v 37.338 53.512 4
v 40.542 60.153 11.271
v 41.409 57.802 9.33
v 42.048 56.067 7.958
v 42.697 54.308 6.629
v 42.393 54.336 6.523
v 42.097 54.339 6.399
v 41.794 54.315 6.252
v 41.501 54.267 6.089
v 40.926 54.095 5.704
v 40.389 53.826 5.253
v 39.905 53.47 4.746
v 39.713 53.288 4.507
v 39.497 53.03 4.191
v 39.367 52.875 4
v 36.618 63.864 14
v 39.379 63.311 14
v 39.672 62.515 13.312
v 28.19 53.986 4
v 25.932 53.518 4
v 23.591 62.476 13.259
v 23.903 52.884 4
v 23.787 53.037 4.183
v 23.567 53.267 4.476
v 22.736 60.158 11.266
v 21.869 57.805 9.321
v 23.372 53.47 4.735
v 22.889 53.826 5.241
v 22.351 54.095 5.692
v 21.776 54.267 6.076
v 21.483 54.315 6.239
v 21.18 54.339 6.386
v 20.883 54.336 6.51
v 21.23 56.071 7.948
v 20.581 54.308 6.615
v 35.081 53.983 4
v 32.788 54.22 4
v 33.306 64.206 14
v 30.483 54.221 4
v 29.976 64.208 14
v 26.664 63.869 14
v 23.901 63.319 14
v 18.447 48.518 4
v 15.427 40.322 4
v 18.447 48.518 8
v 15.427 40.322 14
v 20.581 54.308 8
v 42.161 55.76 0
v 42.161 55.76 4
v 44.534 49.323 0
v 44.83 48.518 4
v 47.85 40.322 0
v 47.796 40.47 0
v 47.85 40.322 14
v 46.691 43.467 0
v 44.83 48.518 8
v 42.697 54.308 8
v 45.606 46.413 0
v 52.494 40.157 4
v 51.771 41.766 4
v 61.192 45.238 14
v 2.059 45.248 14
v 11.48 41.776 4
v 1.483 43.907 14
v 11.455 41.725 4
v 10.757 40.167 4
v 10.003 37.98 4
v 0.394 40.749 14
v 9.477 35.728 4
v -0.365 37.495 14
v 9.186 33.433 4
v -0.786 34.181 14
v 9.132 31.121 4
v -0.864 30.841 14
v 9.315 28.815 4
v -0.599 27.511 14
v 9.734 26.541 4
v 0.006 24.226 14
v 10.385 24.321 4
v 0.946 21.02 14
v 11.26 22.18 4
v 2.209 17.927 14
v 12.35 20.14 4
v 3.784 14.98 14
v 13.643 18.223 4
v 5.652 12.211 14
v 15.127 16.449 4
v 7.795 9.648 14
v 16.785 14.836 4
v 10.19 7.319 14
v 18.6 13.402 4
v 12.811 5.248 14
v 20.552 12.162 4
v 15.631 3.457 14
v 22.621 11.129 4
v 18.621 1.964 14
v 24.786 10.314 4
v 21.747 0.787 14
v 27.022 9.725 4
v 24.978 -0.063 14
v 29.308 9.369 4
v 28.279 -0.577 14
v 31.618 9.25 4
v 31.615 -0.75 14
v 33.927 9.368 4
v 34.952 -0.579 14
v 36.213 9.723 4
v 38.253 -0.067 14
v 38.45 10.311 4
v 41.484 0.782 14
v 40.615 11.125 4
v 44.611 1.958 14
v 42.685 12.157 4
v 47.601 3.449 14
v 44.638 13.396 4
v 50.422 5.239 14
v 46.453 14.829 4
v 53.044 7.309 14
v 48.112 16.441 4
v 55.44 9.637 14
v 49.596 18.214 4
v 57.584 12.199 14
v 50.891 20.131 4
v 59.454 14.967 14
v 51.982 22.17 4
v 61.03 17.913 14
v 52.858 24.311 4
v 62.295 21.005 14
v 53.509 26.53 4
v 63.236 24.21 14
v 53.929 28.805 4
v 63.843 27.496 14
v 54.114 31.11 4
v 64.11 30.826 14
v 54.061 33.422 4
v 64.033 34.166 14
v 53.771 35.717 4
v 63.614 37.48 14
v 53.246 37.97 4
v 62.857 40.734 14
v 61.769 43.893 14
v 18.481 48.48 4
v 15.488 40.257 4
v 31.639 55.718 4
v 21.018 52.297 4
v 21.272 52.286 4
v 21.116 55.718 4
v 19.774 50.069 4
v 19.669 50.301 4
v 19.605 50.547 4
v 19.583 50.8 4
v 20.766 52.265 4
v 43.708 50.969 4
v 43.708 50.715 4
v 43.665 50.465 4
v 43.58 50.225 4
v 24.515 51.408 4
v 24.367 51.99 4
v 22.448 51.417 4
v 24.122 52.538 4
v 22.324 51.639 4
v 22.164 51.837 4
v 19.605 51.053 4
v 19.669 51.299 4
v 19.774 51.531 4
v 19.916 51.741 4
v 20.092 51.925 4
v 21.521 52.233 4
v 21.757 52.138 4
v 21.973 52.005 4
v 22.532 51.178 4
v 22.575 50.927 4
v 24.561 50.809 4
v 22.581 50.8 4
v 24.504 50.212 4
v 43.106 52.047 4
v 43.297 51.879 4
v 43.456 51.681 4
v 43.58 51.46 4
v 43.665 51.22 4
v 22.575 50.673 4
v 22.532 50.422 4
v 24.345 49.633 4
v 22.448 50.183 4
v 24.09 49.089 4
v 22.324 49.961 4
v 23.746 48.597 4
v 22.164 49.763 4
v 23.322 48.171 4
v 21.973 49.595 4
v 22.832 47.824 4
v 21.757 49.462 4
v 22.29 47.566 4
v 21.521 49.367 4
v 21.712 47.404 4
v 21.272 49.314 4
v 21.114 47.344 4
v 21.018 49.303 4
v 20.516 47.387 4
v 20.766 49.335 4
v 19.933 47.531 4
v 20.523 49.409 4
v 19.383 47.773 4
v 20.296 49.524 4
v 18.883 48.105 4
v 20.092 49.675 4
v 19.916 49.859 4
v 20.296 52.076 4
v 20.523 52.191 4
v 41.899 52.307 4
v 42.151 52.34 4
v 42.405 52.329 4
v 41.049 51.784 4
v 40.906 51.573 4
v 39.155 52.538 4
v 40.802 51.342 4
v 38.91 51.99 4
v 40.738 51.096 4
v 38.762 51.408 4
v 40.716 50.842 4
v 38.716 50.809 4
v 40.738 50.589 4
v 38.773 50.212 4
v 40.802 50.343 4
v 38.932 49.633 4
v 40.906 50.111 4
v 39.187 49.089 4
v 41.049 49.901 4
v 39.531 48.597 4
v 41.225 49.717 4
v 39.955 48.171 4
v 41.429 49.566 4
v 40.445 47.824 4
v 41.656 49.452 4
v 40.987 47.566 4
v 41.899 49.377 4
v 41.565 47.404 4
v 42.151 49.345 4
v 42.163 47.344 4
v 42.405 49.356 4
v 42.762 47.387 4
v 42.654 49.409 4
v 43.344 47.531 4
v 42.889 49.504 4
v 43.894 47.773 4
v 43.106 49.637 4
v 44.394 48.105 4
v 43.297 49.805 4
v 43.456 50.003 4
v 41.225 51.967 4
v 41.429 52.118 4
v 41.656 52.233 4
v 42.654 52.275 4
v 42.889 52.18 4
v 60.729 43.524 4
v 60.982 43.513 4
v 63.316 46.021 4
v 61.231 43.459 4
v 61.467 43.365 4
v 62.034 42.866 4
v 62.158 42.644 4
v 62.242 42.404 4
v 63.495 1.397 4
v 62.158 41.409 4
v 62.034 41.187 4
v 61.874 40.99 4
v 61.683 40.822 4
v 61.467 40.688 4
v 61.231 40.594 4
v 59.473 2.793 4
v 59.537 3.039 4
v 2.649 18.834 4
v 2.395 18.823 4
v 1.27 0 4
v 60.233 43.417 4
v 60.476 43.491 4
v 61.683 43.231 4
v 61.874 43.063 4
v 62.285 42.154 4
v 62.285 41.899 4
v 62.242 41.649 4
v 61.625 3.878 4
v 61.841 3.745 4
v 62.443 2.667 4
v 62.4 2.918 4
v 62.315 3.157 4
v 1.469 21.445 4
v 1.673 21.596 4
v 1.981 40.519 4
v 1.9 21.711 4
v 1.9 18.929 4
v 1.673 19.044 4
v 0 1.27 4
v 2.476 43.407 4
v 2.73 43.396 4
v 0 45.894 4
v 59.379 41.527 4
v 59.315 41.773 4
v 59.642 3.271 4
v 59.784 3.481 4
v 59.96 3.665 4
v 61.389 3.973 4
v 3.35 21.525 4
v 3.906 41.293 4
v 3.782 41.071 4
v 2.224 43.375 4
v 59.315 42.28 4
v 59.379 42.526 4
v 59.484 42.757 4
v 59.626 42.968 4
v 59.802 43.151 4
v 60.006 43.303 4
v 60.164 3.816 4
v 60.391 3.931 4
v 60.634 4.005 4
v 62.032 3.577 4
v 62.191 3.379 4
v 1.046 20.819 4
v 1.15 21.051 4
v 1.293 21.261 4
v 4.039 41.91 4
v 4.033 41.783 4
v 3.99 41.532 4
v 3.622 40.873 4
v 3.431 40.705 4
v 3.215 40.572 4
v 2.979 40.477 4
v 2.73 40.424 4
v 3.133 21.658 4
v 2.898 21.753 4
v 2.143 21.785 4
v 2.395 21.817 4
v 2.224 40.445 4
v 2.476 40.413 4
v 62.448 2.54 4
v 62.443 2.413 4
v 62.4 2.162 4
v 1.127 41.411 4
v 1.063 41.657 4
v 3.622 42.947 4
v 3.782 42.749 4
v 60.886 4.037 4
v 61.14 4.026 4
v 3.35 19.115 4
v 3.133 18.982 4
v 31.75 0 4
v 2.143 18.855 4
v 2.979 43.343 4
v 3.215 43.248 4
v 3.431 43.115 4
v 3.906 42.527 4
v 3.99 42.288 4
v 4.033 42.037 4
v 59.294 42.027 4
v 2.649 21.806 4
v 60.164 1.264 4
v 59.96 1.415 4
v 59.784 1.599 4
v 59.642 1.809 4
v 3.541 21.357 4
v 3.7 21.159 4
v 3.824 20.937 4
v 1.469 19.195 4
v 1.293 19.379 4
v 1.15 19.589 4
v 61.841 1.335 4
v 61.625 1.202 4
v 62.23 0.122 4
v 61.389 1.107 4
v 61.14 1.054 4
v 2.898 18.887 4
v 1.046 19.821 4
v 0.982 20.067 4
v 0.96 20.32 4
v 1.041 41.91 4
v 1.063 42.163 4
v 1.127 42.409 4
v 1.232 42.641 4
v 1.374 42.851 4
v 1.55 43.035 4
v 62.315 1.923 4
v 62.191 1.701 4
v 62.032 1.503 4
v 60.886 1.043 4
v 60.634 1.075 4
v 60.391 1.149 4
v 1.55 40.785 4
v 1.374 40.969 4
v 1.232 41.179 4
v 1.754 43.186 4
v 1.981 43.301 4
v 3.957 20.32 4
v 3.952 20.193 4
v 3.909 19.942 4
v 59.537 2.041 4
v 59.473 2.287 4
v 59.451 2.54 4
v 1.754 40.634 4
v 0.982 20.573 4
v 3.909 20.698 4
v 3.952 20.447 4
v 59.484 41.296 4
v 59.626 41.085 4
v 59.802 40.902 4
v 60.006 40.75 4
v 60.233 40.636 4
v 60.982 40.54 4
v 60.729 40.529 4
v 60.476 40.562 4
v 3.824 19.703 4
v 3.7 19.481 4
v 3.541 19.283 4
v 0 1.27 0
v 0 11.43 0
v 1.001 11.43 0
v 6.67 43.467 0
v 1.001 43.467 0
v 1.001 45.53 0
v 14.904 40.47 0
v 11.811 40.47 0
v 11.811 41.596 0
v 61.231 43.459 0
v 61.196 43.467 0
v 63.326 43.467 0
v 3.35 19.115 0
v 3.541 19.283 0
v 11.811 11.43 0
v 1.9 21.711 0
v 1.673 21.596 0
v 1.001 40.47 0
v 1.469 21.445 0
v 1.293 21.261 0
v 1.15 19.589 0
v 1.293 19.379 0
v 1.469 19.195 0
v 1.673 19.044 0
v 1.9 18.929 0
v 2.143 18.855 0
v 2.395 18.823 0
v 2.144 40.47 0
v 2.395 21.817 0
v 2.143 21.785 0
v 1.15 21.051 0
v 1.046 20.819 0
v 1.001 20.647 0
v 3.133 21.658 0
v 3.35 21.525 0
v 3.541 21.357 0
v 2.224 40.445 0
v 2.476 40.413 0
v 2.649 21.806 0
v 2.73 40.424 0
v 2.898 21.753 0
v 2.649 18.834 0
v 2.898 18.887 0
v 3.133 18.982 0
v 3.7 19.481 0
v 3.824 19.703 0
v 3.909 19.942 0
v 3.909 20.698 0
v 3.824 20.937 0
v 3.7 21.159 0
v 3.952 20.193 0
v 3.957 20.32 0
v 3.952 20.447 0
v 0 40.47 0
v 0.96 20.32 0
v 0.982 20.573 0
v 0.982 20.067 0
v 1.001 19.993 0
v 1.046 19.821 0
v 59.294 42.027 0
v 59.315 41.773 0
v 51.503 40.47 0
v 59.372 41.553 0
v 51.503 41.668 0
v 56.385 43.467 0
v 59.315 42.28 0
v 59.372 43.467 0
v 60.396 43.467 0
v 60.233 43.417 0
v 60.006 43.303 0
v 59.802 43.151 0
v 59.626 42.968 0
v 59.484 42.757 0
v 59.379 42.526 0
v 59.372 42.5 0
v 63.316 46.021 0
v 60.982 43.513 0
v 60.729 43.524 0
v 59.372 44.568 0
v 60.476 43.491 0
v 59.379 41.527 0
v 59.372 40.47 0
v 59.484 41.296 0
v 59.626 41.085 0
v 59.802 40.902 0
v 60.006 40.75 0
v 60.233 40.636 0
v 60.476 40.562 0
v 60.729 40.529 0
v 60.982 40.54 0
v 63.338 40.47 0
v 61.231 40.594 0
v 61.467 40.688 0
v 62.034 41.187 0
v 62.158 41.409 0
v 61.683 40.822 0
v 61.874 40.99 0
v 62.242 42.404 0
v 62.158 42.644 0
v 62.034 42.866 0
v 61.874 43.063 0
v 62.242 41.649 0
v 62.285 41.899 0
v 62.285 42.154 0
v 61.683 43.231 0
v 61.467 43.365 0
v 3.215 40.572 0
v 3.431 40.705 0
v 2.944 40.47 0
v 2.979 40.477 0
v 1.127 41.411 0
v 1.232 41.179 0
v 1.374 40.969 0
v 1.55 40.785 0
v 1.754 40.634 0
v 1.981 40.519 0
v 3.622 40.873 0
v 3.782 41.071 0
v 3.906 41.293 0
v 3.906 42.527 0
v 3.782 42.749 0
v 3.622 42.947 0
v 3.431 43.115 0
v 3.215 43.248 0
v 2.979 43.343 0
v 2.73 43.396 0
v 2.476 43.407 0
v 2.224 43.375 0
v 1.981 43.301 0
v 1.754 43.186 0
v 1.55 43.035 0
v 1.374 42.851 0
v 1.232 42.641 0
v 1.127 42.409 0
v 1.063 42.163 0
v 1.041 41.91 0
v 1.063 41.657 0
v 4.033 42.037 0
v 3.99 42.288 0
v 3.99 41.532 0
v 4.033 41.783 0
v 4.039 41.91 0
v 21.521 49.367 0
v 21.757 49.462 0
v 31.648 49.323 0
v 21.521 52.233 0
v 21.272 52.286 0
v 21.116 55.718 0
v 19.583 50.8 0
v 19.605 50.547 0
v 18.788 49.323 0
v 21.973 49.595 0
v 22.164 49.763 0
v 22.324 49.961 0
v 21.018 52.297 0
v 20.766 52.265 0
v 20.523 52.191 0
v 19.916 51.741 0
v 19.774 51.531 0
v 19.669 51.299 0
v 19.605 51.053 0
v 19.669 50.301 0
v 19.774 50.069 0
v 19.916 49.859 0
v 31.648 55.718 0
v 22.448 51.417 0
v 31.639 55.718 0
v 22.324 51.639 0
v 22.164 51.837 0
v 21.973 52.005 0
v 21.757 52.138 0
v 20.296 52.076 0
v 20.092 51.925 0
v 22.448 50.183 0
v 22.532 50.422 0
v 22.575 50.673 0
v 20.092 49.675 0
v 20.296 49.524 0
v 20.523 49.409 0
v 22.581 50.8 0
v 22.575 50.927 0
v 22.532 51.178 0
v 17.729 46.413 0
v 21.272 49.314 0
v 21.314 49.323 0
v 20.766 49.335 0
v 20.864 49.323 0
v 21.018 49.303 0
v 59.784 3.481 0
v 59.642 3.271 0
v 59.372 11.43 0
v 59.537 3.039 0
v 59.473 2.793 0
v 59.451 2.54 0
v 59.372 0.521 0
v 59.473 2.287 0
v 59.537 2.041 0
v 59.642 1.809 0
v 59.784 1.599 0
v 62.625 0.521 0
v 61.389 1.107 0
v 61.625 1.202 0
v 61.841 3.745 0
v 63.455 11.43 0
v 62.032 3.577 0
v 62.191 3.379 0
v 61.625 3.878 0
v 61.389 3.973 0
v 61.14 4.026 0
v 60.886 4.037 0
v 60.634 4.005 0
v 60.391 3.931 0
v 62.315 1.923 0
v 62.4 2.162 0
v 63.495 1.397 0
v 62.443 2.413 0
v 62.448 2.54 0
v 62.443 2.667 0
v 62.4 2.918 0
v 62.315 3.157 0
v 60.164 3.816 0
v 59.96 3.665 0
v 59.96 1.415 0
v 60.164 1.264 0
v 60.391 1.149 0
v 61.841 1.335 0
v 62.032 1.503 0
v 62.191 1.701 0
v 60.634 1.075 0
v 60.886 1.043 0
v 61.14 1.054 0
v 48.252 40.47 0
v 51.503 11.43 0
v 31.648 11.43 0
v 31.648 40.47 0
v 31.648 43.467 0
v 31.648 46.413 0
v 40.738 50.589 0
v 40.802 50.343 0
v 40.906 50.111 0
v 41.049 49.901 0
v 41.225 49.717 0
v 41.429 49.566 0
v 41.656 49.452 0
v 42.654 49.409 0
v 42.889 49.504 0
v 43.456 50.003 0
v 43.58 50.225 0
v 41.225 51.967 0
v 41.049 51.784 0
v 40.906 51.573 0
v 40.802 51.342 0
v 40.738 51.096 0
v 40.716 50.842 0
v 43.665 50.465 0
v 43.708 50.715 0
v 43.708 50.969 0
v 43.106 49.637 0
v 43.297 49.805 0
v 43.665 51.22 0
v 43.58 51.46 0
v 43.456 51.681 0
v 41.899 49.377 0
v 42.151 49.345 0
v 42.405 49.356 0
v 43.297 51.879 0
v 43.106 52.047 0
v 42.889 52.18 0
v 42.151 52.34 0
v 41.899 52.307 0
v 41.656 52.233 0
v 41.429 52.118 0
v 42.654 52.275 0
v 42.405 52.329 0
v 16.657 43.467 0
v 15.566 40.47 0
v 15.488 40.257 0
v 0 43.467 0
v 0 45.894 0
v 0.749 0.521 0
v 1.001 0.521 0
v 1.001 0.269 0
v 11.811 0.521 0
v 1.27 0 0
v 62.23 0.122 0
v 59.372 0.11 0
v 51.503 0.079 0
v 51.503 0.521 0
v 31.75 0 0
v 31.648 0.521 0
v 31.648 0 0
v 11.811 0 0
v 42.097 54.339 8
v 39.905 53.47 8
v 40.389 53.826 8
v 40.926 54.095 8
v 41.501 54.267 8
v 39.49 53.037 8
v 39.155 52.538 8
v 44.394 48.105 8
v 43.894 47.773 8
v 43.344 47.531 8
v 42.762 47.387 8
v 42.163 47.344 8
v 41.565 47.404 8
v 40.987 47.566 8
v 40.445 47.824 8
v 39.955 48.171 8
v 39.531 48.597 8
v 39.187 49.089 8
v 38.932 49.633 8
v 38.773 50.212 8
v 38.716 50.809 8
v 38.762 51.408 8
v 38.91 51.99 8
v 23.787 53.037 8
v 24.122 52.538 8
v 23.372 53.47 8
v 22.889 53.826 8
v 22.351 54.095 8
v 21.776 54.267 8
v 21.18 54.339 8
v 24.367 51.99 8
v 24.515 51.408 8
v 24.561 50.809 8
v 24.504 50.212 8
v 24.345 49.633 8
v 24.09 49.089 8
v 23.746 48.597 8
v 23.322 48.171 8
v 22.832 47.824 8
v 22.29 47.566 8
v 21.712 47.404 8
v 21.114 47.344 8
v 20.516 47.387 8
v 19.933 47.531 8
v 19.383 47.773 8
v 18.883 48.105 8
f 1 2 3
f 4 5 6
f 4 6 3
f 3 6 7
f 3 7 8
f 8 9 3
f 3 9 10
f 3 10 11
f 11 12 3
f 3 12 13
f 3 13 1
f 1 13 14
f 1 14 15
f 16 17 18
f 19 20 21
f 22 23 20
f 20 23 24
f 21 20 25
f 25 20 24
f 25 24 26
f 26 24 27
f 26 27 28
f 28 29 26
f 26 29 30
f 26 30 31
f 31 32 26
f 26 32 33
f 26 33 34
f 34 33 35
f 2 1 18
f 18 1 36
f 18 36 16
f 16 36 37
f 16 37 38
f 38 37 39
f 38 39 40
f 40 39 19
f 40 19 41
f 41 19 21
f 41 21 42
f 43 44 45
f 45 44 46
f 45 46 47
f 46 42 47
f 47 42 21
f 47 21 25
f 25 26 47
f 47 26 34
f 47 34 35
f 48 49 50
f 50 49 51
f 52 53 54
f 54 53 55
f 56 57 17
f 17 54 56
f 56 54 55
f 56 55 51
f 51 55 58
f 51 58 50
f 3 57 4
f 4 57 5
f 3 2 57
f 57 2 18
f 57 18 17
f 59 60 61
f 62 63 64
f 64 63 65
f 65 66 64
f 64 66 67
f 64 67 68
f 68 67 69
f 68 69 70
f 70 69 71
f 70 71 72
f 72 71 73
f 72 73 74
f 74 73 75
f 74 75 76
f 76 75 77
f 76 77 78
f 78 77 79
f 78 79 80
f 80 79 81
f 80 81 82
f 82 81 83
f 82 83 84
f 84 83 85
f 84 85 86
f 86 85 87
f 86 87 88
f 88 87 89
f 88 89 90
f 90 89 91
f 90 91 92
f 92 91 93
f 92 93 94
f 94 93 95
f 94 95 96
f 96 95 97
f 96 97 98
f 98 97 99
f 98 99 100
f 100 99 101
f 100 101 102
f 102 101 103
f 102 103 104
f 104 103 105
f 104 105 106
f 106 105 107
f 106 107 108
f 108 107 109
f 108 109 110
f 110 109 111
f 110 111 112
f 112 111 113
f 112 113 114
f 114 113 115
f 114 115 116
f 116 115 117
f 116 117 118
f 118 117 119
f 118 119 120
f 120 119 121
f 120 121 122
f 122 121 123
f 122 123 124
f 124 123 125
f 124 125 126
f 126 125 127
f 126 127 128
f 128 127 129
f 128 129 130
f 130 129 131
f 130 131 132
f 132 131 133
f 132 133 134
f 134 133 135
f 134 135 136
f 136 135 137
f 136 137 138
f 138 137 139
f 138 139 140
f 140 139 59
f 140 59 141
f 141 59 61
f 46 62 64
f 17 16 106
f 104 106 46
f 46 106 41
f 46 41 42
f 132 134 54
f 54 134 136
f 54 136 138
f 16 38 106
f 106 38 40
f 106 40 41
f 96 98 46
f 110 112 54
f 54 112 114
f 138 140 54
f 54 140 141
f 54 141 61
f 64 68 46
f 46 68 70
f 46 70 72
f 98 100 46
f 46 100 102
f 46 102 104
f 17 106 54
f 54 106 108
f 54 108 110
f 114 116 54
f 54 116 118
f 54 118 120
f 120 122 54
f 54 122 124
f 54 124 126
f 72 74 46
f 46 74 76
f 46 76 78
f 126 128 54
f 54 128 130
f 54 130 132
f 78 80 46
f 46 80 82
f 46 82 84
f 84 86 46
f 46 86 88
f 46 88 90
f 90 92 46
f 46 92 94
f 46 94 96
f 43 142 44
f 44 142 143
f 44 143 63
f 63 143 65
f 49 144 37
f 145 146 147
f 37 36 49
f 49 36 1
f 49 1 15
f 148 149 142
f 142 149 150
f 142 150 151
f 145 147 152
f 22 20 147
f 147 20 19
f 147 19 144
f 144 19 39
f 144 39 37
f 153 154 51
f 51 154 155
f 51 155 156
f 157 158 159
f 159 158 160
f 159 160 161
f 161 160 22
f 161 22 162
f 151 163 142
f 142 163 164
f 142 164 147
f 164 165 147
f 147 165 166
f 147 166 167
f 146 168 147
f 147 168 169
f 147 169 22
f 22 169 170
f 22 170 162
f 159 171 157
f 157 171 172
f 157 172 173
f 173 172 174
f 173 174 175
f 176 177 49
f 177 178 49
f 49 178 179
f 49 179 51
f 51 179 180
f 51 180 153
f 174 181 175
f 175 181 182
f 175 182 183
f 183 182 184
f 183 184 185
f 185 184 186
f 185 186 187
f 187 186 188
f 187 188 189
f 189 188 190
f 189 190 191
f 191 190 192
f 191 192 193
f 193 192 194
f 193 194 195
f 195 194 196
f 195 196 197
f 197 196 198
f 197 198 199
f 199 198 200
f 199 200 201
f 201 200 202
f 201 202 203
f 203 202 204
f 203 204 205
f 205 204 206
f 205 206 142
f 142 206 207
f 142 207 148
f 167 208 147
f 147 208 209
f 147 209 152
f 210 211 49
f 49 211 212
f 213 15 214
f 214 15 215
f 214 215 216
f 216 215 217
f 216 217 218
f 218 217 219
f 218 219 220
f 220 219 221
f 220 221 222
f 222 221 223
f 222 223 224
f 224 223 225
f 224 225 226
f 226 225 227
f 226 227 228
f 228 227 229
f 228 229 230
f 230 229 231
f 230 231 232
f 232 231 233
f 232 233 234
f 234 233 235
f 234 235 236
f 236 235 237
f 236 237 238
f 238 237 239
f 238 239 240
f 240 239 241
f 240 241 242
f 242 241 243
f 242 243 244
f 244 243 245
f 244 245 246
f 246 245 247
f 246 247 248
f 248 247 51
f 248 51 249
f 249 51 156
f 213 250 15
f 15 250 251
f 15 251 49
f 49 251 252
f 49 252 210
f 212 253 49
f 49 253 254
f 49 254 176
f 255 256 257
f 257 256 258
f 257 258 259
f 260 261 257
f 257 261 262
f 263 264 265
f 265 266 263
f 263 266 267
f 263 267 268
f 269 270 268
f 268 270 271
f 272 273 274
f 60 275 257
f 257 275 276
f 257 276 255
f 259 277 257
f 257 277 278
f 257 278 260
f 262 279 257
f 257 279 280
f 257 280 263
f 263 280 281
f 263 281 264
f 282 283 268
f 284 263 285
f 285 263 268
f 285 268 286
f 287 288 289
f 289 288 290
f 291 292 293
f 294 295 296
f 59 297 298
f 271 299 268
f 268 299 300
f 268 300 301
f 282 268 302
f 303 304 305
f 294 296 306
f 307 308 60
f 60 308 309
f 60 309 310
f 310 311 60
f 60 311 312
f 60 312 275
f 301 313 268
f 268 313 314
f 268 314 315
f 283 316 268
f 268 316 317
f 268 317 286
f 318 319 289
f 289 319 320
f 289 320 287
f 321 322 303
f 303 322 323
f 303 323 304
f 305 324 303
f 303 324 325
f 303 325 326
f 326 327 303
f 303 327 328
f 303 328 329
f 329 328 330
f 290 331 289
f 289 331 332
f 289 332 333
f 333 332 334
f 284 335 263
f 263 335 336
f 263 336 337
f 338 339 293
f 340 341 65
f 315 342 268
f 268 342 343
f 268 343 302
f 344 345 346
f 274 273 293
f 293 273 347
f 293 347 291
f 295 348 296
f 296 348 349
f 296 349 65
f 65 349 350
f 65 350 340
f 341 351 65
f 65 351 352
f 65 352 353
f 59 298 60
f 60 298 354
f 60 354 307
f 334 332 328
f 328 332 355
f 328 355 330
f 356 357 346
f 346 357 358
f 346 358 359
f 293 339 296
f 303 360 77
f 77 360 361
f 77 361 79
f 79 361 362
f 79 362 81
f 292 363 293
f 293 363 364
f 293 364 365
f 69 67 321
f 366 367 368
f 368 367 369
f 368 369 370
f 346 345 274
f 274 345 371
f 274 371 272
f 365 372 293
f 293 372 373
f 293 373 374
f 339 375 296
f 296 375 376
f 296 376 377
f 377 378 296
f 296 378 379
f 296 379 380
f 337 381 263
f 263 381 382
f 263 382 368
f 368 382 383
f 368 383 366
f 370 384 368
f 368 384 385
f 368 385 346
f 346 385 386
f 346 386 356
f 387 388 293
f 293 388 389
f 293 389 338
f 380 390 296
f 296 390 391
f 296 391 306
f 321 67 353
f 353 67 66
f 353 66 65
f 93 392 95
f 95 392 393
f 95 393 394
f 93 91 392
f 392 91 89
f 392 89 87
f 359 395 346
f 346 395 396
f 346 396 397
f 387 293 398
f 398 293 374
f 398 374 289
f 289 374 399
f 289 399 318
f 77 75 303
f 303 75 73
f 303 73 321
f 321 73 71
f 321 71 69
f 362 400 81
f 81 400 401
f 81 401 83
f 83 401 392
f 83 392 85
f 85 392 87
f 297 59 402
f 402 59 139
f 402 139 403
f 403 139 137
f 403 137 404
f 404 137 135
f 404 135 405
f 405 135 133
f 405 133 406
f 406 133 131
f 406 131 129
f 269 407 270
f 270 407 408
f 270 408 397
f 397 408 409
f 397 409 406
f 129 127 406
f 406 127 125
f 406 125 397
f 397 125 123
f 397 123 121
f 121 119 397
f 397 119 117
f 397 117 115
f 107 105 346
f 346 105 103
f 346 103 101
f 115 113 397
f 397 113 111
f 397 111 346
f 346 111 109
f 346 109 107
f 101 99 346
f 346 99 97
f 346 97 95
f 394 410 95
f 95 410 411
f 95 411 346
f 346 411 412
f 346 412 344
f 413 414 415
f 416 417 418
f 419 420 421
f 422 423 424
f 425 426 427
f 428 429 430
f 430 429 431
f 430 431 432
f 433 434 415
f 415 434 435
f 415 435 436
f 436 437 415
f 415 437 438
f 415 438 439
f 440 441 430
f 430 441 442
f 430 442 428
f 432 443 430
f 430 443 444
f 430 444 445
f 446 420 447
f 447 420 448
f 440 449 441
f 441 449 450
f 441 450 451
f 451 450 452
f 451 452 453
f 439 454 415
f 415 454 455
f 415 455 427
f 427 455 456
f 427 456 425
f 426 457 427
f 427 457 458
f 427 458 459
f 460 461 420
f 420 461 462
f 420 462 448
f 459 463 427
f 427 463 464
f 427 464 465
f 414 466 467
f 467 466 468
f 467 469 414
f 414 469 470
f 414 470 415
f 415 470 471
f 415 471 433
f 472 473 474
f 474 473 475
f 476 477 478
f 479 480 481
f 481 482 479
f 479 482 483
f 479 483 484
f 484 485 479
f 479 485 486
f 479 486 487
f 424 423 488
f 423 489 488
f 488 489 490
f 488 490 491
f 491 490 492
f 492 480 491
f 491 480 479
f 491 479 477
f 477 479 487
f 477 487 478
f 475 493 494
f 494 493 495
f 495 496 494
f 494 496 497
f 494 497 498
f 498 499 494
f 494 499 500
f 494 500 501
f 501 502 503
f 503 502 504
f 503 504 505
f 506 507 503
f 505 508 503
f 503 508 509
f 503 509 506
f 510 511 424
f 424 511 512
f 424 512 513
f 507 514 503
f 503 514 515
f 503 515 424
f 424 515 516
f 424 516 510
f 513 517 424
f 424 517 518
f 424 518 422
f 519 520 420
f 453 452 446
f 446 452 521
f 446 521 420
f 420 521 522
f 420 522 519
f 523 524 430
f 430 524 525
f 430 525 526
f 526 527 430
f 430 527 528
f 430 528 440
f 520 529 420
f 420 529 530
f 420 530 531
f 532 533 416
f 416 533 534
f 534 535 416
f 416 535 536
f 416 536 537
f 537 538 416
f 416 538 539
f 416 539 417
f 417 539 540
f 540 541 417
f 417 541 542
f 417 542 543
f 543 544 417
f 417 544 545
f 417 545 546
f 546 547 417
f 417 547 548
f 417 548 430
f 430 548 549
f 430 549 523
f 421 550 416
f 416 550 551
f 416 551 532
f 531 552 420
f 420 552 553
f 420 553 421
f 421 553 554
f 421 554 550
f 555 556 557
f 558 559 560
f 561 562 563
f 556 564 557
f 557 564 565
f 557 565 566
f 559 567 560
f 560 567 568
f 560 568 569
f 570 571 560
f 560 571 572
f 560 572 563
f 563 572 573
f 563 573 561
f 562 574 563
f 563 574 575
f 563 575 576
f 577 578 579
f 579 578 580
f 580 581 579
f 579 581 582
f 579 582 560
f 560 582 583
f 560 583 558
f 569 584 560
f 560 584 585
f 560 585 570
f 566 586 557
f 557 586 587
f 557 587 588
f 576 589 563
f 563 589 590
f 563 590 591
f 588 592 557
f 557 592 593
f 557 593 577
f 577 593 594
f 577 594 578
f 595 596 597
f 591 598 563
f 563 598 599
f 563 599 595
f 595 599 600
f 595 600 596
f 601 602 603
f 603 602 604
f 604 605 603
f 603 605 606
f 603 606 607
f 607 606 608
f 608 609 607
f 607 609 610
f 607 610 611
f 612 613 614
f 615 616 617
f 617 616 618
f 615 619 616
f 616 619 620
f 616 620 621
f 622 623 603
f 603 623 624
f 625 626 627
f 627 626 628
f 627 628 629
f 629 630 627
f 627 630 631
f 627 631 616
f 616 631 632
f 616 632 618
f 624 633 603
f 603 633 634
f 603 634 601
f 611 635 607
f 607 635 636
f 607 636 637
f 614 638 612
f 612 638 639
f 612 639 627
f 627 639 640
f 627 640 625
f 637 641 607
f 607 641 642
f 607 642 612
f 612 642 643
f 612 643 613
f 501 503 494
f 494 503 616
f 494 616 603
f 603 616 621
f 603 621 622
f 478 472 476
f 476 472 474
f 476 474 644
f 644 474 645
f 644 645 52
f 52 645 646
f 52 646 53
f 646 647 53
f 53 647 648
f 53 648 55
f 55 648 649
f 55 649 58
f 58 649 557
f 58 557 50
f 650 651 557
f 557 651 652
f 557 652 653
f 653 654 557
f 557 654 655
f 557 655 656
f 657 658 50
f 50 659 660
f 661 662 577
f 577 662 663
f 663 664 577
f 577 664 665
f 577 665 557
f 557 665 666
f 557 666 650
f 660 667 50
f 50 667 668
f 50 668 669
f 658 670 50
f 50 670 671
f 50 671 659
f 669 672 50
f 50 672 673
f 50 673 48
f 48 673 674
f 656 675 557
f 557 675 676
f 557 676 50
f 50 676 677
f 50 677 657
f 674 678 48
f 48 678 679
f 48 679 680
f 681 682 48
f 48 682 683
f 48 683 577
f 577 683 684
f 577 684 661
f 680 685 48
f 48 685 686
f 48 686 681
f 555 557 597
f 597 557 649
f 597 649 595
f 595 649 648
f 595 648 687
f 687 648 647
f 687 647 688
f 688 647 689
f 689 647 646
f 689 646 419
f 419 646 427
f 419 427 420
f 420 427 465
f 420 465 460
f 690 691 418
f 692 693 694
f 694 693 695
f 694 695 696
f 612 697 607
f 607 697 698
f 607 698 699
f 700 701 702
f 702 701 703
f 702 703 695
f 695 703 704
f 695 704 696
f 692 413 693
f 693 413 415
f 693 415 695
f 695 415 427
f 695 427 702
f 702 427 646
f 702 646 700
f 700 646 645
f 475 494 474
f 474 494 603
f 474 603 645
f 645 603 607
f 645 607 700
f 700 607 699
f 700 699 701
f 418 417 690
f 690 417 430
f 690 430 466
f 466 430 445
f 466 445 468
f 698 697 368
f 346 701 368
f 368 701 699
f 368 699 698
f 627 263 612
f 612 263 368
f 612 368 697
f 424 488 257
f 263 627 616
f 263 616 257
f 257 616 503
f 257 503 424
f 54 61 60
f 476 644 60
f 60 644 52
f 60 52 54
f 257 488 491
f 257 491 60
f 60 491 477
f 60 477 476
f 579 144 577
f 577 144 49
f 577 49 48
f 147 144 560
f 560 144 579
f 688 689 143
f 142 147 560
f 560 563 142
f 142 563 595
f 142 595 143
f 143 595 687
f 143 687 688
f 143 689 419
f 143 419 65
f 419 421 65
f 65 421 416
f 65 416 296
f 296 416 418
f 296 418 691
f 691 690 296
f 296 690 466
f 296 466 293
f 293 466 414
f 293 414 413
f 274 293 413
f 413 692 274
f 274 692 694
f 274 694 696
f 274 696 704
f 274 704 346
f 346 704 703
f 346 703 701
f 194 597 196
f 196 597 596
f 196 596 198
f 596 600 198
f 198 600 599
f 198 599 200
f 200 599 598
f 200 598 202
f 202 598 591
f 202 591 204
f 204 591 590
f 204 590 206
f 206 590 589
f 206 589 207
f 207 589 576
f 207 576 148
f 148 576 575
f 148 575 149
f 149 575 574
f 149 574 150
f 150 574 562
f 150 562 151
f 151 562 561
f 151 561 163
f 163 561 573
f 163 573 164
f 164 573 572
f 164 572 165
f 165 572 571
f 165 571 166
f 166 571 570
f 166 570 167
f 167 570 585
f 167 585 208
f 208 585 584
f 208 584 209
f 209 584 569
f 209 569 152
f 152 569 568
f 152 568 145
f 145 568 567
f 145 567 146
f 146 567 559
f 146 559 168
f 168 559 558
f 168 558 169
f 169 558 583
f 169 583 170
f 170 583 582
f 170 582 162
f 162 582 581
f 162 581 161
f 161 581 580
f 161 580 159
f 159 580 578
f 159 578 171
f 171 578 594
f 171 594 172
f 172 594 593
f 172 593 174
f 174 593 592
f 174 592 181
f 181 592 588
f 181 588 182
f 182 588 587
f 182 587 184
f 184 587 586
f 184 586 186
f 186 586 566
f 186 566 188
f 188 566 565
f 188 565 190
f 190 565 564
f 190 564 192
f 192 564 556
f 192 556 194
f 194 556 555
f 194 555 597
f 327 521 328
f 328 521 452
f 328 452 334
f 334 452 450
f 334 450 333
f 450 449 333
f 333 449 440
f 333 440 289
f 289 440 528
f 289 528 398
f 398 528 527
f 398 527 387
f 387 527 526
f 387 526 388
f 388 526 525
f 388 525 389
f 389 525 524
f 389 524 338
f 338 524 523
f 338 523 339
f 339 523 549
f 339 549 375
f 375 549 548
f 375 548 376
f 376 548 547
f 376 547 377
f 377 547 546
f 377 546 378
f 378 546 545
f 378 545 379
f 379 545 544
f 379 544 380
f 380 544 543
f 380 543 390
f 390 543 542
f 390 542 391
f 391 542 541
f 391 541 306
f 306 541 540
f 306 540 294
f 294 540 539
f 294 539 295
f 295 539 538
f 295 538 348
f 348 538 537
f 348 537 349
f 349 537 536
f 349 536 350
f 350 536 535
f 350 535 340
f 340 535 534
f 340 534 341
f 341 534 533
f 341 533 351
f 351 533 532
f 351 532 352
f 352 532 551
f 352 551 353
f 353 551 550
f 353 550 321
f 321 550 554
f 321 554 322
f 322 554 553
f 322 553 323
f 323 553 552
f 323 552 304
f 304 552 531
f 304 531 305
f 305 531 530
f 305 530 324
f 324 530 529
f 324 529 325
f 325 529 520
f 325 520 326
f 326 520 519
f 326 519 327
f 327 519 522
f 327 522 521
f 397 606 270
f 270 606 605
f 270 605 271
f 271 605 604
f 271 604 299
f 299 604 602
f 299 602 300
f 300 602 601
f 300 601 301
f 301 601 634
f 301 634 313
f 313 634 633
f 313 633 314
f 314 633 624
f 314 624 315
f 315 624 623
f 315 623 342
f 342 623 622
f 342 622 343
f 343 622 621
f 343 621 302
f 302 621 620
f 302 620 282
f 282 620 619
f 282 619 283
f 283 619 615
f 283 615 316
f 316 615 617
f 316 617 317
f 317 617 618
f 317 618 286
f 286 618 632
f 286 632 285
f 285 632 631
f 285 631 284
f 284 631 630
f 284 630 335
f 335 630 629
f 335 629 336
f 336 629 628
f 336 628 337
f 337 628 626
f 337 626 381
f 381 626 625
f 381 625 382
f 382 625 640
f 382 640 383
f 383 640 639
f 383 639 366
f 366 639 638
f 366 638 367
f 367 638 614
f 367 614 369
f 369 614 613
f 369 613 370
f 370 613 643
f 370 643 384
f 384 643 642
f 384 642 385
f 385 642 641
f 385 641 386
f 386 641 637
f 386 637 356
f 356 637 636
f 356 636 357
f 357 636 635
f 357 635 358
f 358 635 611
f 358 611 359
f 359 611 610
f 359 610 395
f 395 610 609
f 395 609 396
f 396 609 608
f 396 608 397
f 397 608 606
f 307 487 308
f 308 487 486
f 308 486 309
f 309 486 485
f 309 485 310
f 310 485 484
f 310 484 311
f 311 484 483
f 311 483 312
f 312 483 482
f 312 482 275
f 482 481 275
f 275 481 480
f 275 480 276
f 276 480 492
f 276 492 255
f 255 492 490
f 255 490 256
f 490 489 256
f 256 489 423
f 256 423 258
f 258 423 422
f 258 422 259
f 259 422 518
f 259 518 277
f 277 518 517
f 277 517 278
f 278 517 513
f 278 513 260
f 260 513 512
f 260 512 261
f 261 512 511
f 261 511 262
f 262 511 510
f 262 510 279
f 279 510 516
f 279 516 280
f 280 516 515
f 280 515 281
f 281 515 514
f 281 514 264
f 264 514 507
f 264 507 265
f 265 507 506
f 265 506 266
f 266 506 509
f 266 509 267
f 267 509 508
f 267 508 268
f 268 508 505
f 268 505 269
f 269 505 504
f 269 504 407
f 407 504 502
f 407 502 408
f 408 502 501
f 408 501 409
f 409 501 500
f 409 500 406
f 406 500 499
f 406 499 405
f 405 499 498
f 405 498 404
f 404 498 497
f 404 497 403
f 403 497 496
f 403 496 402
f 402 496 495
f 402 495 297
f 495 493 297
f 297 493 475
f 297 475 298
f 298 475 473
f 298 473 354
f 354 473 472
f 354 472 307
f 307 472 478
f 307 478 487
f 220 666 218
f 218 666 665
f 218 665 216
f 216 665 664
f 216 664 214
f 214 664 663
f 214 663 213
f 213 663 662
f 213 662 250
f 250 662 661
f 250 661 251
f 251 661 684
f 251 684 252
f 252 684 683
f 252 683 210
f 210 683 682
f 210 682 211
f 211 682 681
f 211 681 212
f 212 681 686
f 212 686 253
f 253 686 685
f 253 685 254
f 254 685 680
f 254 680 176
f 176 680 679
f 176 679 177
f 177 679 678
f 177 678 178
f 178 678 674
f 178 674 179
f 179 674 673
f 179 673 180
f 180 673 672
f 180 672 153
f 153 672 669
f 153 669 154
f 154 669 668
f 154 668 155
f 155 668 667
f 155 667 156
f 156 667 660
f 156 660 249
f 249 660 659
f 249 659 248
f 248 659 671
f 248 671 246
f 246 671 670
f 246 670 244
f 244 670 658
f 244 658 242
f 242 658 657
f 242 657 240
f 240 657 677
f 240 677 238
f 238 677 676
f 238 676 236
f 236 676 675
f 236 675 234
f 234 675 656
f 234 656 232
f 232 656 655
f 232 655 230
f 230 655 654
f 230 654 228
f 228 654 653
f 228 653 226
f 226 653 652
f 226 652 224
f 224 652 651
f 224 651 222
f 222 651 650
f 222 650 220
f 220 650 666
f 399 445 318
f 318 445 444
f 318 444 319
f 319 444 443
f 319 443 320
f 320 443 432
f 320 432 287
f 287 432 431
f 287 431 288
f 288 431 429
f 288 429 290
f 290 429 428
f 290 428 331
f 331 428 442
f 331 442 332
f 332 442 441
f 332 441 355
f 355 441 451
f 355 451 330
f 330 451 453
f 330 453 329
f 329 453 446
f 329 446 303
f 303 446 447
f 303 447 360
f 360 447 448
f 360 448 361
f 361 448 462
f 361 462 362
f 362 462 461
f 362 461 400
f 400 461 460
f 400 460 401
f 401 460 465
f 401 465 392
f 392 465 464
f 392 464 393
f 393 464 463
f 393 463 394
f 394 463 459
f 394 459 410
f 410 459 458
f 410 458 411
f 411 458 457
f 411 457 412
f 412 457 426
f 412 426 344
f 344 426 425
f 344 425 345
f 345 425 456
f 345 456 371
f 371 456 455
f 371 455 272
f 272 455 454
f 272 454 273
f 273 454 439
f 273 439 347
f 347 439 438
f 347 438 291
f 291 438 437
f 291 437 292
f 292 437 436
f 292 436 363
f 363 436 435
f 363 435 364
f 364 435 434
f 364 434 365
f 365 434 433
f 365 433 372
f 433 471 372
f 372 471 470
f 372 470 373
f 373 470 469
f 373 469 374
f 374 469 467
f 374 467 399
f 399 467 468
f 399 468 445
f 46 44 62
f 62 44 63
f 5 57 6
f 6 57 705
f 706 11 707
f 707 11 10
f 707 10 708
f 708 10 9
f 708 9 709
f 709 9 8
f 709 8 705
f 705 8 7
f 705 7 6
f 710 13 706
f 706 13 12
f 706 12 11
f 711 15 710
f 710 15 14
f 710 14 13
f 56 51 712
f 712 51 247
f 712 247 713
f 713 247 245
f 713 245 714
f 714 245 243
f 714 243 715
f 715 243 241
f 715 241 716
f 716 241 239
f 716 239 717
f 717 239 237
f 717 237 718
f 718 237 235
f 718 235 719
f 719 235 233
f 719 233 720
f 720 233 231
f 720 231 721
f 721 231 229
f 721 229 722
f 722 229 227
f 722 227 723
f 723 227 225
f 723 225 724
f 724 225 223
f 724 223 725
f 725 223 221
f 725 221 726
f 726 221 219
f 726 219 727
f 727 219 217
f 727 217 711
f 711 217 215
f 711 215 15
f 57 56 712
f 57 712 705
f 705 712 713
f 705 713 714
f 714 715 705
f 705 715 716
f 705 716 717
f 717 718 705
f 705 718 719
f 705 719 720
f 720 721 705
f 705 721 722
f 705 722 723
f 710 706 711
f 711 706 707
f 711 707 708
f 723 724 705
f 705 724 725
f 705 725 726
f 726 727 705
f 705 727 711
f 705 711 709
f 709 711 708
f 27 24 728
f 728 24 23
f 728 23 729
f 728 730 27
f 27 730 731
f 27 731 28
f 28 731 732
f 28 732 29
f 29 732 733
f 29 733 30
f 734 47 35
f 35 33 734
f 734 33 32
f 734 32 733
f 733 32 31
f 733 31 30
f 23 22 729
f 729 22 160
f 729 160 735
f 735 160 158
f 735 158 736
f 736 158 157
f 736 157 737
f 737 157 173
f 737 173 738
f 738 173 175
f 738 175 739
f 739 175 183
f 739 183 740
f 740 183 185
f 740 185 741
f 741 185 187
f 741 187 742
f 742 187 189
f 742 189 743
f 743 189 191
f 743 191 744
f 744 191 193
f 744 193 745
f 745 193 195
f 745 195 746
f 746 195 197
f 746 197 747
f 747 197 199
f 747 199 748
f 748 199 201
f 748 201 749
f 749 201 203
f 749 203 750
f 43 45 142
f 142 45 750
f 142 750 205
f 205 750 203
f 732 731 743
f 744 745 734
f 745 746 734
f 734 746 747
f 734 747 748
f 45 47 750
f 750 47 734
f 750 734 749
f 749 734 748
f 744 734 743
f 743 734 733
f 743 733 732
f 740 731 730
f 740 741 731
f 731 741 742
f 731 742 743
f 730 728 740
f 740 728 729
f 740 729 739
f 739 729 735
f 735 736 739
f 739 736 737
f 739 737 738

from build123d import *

# Parameters (mm, degrees)
SKETCH9_R           = 1.4986
BOSS_EXTRUDE2_DEPTH = 4
SKETCH10_R          = 22.5
BOSS_EXTRUDE3_DEPTH = 10
BOSS_EXTRUDE3_DRAFT = -45
CUT_EXTRUDE1_DEPTH  = 10
SKETCH12_R          = 3.4986
CUT_EXTRUDE2_DEPTH  = 4


with BuildPart() as part:
    # Sketch9 → Boss-Extrude2 (new body)
    with BuildSketch(Plane.XY):
        Polygon((0, 45.894331692), (15.488494665, 40.257085472), (21.11579715, 55.718259441), (31.638563481, 55.718259441), (42.161245631, 55.760350338), (47.850347546, 40.321809178), (63.316169409, 46.020964031), (63.494666021, 1.396989332), (62.229756161, 0.121919512), (31.75, 0), (1.27, 0), (0, 1.27), align=None)
        with Locations((60.94984, 2.54)):
            Circle(SKETCH9_R, mode=Mode.SUBTRACT)
        with Locations((21.082, 50.8)):
            Circle(SKETCH9_R, mode=Mode.SUBTRACT)
        with Locations((2.54, 41.91)):
            Circle(SKETCH9_R, mode=Mode.SUBTRACT)
        with Locations(Location((60.792126991, 42.026504254, 0), (0, 0, 180))):
            Circle(SKETCH9_R, mode=Mode.SUBTRACT)
        with Locations(Location((42.214715469, 50.842265431, 0), (0, 0, 180))):
            Circle(SKETCH9_R, mode=Mode.SUBTRACT)
        with Locations((2.45872, 20.32)):
            Circle(SKETCH9_R, mode=Mode.SUBTRACT)
    extrude(amount=BOSS_EXTRUDE2_DEPTH)


with BuildPart() as boss_extrude3_tool:
    # Sketch10 → Boss-Extrude3 (with draft: the straight prism first)
    with BuildSketch(Plane.XY.offset(4)):
        with Locations((31.623, 31.75)):
            Circle(SKETCH10_R)
    extrude(amount=BOSS_EXTRUDE3_DEPTH)
    # Boss-Extrude3: the draft: its side faces are tilted about the plane it starts from
    boss_extrude3_sides = [boss_extrude3_tool.faces().sort_by_distance(p)[0] for p in [
        (9.123, 31.75, 9),
    ]]
    draft(boss_extrude3_sides, Plane.XY.offset(4), BOSS_EXTRUDE3_DRAFT)


with BuildPart() as part_1:
    add(part.part)

    # Boss-Extrude3: add boss_extrude3_tool
    add(boss_extrude3_tool.part)

    # Sketch11 → Cut-Extrude1 (cut)
    with BuildSketch(Plane.XY.offset(4)):
        Polygon((63.316169409, 46.020964031), (54.671905515, 69.478941389), (39.206083653, 63.779786536), (42.161245631, 55.760350338), (47.850347546, 40.321809178), align=None)
        Polygon((-0.039042446, 46.020964031), (15.426779416, 40.321809178), (21.115881332, 55.760350338), (24.071043309, 63.779786536), (8.605221447, 69.478941389), align=None)
    extrude(amount=CUT_EXTRUDE1_DEPTH, mode=Mode.SUBTRACT)

    # Sketch12 → Cut-Extrude2 (cut)
    with BuildSketch(Plane.XY.offset(4)):
        with Locations((21.062411493, 50.842265431)):
            Circle(SKETCH12_R)
        with Locations((42.214715469, 50.842265431)):
            Circle(SKETCH12_R)
    extrude(amount=CUT_EXTRUDE2_DEPTH, mode=Mode.SUBTRACT)


solid = part_1.part
